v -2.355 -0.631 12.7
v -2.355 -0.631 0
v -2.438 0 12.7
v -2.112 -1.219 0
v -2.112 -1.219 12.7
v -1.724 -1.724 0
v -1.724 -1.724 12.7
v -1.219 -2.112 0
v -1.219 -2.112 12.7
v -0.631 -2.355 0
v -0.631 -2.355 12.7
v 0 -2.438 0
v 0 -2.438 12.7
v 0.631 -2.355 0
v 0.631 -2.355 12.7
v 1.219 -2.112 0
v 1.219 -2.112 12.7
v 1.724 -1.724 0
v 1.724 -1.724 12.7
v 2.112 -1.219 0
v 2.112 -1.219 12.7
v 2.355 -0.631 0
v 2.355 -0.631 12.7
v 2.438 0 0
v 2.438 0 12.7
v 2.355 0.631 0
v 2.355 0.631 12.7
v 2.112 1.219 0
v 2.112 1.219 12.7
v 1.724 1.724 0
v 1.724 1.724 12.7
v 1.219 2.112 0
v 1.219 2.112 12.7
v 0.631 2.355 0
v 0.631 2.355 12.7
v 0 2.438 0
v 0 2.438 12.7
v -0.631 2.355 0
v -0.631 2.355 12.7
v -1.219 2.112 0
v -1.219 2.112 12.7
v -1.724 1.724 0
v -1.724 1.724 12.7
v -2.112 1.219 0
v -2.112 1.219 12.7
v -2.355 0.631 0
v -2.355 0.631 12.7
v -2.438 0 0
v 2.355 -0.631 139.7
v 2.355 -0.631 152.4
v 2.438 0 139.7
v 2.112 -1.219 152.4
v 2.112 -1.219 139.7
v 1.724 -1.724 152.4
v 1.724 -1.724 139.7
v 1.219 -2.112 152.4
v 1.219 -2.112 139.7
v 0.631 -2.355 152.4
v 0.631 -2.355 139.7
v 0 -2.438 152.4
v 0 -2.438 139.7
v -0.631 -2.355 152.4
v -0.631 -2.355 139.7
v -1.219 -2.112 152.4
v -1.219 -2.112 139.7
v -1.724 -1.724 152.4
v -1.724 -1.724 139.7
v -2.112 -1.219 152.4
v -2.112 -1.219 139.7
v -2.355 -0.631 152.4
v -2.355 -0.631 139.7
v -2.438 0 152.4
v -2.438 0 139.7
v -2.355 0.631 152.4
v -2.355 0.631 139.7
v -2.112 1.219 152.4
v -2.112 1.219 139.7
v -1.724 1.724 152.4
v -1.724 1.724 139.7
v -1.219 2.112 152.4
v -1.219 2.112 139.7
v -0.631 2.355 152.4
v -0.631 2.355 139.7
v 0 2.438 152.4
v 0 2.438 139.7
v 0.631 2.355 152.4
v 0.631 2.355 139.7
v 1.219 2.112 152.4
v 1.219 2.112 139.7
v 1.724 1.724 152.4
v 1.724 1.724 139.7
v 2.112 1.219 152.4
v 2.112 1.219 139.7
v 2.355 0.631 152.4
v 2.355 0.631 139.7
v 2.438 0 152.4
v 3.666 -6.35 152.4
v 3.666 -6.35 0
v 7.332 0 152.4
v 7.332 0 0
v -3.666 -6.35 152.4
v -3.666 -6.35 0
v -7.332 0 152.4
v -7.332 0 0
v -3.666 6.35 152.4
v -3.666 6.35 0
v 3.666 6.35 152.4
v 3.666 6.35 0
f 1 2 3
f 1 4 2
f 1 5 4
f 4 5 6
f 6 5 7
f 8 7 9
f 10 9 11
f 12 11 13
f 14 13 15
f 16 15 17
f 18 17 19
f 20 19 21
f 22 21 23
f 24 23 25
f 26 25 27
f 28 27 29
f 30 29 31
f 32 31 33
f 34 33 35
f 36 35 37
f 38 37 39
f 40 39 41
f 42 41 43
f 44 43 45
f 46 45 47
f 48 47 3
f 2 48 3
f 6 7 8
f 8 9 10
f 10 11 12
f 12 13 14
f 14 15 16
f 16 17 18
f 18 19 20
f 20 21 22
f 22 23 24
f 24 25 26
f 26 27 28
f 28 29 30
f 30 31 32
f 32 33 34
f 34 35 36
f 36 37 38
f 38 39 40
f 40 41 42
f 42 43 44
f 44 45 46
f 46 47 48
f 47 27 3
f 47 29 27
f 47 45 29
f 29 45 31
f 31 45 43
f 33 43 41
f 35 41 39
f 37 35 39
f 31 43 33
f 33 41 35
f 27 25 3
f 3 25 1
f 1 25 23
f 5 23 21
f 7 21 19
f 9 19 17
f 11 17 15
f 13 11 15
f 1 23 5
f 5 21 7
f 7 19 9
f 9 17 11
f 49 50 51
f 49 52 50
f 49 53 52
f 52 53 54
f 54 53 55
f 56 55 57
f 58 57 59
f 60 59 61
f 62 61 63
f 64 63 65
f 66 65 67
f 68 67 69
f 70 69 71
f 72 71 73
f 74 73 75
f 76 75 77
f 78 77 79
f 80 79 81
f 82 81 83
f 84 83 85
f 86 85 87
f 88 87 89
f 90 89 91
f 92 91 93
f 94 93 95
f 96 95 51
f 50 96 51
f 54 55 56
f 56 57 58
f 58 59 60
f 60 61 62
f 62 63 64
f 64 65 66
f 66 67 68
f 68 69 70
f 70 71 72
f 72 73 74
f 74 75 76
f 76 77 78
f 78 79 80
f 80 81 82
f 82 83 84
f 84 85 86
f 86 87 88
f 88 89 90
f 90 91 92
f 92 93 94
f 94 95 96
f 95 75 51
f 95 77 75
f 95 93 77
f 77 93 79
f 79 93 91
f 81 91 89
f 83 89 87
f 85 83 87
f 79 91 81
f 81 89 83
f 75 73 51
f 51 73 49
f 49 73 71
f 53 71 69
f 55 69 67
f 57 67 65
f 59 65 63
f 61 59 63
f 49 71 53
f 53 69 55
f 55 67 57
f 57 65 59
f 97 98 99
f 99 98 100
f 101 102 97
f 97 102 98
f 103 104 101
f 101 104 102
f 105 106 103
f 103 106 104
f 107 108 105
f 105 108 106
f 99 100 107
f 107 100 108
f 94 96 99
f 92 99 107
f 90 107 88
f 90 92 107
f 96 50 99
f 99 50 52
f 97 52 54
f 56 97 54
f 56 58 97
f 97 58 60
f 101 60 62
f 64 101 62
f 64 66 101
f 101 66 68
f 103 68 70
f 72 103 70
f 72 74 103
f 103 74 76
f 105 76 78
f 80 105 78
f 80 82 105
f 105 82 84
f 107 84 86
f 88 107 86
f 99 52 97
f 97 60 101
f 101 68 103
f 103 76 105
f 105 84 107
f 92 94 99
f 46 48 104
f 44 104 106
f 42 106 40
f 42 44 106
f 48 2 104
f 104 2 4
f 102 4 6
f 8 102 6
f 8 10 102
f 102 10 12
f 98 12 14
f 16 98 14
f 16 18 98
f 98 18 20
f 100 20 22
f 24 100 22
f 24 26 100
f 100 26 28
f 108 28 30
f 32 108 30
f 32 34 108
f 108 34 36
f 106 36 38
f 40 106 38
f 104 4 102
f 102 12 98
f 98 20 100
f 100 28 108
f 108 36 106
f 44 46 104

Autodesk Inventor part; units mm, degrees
ref_plane "YZ Plane" through (0, 0, 0) normal (1, 0, 0) x (0, 1, 0)
ref_plane "XZ Plane" through (0, 0, 0) normal (0, 1, 0) x (-1, 0, 0)
ref_plane "XY Plane" through (0, 0, 0) normal (0, 0, 1) x (1, 0, 0)
sketch "Sketch1" plane through (0, 0, 0) normal (0, 0, 1) x (1, 0, 0)
  line L0 (3.6662, 6.35) -> (7.3323, 0)
  line L1 (7.3323, 0) -> (3.6662, -6.35)
  line L2 (3.6662, -6.35) -> (-3.6662, -6.35)
  line L3 (-3.6662, -6.35) -> (-7.3323, 0)
  line L4 (-7.3323, 0) -> (-3.6662, 6.35)
  line L5 (-3.6662, 6.35) -> (3.6662, 6.35)
  point P0 (0, 0)
  point P1 (0, 0)
  dimension "d0" = 12.7
extrude "Extrusion1" add sketch "Sketch1" along normal blind 152.4
sketch "Sketch4" plane through (0, 0, 152.4) normal (0, 0, 1) x (1, 0, 0)
  circle A0 centre (0, 0) radius 2.4384
  dimension "d10" = 4.8768
extrude "Extrusion4" cut sketch "Sketch4" against normal blind 12.7
sketch "Sketch5" plane through (0, 0, 0) normal (0, 0, -1) x (-1, 0, 0)
  circle A0 centre (0, 0) radius 2.4384
  dimension "d13" = 4.8768
extrude "Extrusion5" cut sketch "Sketch5" against normal blind 12.7
properties part number "OuterAxle" material "Aluminum-6061"
